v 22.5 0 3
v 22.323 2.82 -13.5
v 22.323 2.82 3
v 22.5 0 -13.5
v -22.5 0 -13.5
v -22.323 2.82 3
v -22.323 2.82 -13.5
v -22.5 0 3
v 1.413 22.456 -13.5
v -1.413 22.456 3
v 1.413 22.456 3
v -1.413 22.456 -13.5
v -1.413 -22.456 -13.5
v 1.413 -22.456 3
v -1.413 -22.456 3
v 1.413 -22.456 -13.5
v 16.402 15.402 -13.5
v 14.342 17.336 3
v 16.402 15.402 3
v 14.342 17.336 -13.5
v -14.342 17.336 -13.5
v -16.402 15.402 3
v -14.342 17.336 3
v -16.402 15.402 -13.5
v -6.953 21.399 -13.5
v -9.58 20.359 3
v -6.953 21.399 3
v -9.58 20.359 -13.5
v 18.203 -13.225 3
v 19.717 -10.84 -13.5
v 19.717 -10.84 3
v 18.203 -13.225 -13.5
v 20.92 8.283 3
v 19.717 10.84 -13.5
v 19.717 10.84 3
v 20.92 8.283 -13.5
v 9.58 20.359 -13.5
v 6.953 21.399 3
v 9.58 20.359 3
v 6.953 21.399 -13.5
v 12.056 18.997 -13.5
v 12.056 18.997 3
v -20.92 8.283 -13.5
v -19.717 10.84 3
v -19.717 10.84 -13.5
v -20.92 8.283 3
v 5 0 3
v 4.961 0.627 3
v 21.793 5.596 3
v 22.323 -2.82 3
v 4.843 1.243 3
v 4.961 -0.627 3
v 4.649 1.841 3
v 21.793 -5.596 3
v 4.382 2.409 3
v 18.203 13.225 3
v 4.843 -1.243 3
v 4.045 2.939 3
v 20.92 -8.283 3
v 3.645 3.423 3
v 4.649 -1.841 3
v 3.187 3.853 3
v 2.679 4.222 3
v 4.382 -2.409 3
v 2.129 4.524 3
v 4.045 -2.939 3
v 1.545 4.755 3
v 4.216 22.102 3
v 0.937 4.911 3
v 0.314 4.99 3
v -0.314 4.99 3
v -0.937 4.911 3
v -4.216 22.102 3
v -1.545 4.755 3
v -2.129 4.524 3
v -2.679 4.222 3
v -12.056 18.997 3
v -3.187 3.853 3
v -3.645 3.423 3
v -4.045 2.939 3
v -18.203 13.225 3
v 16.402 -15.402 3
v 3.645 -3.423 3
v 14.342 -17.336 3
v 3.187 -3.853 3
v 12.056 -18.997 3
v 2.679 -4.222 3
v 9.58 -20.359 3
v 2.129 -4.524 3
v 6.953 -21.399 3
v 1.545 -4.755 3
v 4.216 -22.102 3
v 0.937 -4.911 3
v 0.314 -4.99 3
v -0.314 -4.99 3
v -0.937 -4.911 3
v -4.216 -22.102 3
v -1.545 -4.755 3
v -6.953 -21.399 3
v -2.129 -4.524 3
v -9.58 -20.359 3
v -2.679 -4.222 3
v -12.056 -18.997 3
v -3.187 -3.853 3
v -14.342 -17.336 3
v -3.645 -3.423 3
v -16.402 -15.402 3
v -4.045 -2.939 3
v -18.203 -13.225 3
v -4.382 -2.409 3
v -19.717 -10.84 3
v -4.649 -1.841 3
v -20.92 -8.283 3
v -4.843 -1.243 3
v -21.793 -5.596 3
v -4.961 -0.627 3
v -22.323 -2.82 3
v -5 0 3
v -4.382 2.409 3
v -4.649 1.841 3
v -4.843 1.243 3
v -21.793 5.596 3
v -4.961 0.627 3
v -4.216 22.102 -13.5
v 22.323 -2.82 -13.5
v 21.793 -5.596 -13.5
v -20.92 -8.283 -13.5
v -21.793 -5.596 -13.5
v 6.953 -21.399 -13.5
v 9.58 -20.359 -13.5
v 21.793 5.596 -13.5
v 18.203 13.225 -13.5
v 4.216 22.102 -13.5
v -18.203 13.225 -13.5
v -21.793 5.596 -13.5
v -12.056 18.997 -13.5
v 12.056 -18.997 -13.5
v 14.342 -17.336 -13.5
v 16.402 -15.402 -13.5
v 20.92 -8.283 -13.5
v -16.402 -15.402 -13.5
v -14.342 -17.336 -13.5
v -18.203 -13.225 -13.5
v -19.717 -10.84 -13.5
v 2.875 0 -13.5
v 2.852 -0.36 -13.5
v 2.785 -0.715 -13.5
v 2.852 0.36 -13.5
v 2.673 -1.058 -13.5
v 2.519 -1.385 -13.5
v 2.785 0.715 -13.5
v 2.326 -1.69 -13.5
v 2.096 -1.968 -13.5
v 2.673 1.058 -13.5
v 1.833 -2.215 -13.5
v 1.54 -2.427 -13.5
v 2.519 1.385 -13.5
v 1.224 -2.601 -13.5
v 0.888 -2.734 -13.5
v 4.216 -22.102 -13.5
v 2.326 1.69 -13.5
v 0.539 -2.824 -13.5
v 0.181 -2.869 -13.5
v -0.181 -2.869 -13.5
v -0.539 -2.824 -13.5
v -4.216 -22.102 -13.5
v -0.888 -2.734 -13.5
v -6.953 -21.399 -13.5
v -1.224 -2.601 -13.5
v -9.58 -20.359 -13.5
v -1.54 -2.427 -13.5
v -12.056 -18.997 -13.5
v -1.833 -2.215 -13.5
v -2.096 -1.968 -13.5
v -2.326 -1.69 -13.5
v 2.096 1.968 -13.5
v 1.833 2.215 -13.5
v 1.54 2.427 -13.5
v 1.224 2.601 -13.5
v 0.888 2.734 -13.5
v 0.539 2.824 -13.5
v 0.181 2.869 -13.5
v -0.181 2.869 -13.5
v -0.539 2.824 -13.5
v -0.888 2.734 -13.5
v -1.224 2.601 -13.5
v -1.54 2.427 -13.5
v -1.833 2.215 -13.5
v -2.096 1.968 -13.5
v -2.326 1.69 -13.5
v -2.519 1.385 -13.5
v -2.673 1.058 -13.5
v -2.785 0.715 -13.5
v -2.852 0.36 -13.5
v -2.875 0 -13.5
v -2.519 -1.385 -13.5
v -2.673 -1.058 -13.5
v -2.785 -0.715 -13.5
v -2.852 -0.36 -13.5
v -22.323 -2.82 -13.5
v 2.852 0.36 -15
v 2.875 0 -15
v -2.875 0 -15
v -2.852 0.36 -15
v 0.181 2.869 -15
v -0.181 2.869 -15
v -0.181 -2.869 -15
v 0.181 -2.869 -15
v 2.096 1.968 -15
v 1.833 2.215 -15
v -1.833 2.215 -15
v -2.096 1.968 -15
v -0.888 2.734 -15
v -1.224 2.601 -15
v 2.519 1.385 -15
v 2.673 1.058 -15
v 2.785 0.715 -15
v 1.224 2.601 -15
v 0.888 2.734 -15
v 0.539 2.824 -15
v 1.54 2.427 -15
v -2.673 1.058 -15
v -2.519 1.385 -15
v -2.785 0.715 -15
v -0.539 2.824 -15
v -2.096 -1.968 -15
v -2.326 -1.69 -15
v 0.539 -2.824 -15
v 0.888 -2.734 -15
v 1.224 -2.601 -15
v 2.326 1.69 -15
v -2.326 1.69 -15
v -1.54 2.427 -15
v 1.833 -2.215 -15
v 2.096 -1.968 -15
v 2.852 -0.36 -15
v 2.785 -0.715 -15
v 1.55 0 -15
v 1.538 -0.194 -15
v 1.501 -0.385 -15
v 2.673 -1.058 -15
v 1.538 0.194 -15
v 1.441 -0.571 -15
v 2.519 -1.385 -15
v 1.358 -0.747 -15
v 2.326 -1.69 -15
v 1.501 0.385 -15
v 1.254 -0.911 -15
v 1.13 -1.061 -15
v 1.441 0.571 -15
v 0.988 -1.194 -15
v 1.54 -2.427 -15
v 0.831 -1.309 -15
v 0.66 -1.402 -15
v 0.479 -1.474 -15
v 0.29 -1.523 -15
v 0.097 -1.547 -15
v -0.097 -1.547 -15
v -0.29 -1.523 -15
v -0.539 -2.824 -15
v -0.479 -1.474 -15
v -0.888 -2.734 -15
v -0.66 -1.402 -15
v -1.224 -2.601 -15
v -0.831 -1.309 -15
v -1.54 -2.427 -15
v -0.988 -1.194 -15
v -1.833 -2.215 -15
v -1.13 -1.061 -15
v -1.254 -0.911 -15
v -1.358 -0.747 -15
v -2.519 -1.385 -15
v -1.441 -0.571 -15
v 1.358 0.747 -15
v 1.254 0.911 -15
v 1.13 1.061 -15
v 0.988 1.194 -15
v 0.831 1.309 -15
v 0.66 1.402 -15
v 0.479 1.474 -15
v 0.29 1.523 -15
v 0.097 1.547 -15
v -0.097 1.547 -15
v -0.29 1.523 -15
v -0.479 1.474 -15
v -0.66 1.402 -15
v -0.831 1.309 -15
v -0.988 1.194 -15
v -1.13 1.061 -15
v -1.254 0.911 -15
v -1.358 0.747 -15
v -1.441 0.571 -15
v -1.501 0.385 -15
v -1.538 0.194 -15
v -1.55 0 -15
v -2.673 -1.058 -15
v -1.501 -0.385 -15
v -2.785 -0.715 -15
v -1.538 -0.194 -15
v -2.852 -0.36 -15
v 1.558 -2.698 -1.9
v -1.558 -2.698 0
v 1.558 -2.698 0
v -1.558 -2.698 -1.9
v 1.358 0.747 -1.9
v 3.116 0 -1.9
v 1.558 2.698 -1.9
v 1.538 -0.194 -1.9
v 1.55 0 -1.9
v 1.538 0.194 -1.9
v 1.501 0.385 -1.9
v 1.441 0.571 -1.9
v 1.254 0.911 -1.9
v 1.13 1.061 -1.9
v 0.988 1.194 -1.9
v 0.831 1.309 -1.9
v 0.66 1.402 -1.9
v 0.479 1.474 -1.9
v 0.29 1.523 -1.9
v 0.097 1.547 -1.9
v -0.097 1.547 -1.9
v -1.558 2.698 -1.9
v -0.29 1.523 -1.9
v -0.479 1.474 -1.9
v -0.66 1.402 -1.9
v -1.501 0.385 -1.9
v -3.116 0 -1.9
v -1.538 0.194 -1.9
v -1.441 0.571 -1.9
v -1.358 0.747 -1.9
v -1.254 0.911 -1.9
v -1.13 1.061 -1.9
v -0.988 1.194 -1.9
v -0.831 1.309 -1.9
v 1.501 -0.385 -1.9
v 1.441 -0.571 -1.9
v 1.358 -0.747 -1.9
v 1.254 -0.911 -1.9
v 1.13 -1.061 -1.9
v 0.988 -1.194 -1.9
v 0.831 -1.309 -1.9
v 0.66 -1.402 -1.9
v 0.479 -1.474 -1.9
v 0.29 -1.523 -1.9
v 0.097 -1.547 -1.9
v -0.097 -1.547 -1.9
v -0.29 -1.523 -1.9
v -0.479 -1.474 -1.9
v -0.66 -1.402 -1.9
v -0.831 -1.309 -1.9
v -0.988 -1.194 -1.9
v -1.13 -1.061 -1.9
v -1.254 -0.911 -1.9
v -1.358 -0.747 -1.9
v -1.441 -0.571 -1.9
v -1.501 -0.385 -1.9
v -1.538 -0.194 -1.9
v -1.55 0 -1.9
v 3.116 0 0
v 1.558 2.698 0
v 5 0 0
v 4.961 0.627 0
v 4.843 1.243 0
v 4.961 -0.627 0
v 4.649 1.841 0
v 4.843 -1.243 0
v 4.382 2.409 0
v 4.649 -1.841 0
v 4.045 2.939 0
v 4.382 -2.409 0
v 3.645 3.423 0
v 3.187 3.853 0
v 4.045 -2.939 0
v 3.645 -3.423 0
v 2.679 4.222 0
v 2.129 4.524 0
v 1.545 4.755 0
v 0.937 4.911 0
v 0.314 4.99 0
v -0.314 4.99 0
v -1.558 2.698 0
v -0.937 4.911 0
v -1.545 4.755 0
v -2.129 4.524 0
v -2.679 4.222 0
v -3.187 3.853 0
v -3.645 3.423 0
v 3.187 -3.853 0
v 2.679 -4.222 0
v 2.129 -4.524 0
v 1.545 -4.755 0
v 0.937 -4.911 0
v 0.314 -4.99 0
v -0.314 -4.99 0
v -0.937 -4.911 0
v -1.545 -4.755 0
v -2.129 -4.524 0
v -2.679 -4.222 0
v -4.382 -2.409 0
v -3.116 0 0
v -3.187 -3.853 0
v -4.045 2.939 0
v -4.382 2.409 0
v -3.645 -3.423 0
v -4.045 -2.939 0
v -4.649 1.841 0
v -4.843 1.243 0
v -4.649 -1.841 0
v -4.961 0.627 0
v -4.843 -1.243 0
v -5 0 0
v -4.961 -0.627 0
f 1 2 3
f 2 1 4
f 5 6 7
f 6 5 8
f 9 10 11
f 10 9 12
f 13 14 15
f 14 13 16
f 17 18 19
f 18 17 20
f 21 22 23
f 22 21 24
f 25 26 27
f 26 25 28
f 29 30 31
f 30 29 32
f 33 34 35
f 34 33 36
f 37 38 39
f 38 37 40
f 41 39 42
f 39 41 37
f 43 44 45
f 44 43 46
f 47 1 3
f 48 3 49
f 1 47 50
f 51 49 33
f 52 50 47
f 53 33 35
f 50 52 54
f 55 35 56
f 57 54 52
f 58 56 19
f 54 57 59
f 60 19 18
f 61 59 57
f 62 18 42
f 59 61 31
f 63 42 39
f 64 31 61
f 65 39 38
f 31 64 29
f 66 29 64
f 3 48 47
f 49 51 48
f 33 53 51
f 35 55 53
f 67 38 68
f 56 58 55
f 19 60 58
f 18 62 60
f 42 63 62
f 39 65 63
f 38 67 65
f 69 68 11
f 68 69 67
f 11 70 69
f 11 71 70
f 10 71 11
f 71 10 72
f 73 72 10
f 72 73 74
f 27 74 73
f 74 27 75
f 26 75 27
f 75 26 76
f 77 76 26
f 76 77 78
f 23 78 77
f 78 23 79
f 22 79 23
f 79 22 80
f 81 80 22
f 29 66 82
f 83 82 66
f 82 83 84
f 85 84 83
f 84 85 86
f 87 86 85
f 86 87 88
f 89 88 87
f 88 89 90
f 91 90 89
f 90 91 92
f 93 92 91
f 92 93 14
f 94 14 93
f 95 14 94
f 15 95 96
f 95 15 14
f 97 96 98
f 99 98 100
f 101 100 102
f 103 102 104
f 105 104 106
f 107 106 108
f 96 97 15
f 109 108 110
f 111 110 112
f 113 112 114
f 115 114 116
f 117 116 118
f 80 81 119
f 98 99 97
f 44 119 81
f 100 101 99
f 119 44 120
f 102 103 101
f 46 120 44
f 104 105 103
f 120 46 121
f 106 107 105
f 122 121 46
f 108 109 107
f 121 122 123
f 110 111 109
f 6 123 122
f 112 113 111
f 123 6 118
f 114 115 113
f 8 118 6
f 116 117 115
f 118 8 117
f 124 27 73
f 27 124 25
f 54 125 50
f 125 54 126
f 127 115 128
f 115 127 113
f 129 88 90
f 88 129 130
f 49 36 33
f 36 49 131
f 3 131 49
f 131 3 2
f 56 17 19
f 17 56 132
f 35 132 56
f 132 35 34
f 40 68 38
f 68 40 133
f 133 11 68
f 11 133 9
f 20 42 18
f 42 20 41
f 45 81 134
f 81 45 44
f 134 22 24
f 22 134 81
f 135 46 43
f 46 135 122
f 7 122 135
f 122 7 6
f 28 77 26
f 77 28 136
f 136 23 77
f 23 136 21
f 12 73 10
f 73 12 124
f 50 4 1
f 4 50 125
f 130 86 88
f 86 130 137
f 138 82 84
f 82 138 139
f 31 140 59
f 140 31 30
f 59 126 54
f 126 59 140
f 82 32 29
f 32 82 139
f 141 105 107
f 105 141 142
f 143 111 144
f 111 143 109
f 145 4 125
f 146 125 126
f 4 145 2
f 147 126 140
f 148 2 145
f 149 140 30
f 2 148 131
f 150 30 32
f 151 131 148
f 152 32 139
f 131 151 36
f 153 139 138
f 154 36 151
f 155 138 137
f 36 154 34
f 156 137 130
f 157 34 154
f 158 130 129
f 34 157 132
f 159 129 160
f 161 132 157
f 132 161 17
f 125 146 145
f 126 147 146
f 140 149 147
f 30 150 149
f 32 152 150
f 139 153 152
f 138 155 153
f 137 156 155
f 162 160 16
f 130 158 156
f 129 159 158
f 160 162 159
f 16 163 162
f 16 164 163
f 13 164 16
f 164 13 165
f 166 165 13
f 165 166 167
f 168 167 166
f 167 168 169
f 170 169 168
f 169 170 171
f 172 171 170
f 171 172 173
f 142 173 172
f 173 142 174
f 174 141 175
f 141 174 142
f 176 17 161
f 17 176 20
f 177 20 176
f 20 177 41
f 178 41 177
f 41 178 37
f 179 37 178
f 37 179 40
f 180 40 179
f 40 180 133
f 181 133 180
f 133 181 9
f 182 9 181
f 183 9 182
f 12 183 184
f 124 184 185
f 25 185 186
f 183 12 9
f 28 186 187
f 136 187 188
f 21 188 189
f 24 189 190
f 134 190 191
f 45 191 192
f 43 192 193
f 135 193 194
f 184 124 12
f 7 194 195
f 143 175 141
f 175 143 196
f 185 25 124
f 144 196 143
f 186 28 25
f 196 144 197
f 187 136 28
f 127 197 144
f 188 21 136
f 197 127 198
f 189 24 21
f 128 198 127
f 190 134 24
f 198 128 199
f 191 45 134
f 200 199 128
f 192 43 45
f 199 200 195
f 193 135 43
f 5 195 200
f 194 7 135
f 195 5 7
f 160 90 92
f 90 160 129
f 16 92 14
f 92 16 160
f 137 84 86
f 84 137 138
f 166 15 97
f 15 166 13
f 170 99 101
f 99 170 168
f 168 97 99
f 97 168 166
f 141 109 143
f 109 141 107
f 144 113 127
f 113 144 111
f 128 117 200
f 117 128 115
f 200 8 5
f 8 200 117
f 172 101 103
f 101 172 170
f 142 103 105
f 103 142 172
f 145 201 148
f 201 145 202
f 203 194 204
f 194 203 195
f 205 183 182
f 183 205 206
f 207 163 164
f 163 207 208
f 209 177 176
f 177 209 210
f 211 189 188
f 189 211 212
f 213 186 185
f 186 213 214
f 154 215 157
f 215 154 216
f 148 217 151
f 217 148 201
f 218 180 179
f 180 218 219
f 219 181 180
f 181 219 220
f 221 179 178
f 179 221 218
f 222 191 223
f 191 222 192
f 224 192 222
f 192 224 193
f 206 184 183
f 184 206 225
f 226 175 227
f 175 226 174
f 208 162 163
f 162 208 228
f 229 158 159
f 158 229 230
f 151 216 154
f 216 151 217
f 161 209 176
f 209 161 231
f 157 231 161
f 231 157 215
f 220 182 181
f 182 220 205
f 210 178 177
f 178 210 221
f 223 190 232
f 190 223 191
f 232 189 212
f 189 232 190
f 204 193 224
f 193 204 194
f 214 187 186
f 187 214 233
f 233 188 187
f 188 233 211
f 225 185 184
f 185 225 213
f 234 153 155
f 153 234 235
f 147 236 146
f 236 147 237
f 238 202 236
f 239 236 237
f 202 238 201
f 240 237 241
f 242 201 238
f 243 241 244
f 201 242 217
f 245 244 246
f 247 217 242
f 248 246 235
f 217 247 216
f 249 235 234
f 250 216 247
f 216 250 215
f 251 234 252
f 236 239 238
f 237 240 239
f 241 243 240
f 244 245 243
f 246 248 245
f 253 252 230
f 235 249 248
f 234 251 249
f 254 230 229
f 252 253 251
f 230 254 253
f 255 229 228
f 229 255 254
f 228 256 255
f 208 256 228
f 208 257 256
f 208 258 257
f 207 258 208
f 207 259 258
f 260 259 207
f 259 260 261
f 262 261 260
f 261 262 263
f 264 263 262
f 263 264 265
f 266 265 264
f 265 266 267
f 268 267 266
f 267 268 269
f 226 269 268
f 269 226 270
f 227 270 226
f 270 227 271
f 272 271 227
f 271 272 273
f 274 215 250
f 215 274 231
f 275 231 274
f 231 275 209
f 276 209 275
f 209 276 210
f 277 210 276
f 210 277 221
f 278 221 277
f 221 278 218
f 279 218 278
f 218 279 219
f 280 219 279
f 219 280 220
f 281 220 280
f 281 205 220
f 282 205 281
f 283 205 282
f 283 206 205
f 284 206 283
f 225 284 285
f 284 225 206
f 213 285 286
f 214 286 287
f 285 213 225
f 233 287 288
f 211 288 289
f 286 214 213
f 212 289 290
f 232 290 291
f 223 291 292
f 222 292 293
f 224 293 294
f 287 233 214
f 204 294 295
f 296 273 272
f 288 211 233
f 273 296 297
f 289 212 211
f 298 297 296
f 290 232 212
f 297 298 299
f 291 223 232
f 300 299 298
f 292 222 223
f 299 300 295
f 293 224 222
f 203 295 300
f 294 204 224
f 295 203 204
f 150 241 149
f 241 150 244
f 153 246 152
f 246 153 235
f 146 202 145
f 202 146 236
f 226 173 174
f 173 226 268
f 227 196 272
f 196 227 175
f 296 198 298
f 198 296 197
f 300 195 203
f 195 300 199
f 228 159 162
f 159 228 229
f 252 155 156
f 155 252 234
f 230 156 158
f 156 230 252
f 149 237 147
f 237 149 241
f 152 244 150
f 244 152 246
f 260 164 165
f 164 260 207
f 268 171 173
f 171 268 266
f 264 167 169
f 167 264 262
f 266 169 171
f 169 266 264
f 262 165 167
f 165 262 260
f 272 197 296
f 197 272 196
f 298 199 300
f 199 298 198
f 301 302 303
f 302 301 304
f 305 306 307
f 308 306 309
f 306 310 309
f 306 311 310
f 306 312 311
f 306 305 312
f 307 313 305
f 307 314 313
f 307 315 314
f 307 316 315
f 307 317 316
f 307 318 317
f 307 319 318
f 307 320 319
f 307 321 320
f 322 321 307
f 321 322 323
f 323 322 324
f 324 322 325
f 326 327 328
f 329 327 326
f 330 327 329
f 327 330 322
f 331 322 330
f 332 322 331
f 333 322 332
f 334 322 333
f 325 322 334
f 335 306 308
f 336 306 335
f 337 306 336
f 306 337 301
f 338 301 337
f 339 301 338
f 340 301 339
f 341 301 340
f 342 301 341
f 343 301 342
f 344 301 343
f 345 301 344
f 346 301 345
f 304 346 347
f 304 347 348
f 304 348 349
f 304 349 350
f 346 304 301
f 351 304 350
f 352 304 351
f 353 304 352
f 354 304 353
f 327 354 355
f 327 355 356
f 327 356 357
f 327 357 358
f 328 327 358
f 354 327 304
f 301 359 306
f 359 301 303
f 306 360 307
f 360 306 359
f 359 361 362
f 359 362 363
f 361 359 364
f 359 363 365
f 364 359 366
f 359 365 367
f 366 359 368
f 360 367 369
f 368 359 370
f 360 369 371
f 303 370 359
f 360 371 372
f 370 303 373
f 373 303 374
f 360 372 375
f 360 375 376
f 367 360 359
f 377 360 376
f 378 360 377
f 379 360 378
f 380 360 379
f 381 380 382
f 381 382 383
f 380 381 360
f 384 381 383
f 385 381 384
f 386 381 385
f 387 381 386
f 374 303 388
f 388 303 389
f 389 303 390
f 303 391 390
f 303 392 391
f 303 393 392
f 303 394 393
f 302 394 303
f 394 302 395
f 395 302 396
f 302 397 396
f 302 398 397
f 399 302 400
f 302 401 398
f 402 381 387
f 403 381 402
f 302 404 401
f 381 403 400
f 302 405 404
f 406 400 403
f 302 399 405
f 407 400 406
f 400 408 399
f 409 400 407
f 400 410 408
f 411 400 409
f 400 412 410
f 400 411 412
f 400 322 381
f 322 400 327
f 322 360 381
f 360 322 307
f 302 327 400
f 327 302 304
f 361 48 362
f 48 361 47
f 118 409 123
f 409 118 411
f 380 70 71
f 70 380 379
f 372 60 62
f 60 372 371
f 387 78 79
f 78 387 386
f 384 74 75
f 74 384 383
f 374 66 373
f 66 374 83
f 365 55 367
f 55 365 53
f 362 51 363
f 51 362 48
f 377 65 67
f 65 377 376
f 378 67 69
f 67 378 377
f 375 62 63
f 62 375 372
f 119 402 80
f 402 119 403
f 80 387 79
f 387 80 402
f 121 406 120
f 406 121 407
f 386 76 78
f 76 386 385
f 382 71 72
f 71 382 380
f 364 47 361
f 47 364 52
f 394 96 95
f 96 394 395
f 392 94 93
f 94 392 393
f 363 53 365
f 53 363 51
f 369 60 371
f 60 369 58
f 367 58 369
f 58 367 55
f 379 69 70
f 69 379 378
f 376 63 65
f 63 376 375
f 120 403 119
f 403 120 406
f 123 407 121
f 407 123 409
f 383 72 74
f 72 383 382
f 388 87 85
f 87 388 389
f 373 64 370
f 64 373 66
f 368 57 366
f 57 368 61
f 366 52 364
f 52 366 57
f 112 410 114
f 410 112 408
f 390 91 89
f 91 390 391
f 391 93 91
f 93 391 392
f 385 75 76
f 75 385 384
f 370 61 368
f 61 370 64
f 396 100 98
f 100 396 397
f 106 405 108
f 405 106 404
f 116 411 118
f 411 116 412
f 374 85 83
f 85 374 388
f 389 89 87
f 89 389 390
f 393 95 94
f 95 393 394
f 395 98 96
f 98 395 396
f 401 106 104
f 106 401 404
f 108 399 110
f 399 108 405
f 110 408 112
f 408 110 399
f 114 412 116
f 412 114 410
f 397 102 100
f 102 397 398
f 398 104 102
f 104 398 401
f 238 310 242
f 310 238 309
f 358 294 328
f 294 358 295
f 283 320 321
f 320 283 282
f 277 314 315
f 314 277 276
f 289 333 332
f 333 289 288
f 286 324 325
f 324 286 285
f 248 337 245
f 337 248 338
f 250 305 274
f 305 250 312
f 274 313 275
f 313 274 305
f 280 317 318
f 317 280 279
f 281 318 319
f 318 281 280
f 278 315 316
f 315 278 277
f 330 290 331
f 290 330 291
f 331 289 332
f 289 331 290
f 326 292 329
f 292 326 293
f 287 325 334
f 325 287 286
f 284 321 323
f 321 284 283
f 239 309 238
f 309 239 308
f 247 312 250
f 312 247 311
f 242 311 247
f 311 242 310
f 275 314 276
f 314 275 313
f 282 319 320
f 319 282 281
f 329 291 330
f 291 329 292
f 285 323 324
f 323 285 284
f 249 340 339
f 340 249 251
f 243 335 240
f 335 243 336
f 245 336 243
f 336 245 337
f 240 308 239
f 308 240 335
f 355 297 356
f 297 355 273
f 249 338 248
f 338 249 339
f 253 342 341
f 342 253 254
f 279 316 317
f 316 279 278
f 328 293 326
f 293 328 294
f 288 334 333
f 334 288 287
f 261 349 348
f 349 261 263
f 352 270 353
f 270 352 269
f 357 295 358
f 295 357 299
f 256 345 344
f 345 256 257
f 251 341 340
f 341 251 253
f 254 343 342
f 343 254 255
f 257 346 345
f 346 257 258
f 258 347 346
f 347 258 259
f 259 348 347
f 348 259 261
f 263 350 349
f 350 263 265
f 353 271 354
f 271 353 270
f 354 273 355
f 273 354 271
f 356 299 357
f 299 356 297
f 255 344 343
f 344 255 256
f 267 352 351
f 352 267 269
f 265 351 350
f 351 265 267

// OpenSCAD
$fn = 50;


difference() {
	union() {
		translate(v = [0, 0, -13.5000000000]) {
			cylinder(h = 16.5000000000, r = 22.5000000000);
		}
		#translate(v = [0, 0, -15.0000000000]) {
			cylinder(h = 15, r = 2.8750000000);
		}
	}
	union() {
		translate(v = [0, 0, 0]) {
			rotate(a = [0, 0, 0]) {
				difference() {
					union() {
						translate(v = [0, 0, -1.9000000000]) {
							linear_extrude(height = 1.9000000000) {
								polygon(points = [[3.1158000000, 0.0000000000], [1.5579000000, 2.6983619531], [-1.5579000000, 2.6983619531], [-3.1158000000, 0.0000000000], [-1.5579000000, -2.6983619531], [1.5579000000, -2.6983619531]]);
							}
						}
					}
					union();
				}
			}
		}
		#cylinder(h = 3, r = 5.0000000000);
		#translate(v = [0, 0, -100.0000000000]) {
			cylinder(h = 200, r = 1.5500000000);
		}
	}
}
